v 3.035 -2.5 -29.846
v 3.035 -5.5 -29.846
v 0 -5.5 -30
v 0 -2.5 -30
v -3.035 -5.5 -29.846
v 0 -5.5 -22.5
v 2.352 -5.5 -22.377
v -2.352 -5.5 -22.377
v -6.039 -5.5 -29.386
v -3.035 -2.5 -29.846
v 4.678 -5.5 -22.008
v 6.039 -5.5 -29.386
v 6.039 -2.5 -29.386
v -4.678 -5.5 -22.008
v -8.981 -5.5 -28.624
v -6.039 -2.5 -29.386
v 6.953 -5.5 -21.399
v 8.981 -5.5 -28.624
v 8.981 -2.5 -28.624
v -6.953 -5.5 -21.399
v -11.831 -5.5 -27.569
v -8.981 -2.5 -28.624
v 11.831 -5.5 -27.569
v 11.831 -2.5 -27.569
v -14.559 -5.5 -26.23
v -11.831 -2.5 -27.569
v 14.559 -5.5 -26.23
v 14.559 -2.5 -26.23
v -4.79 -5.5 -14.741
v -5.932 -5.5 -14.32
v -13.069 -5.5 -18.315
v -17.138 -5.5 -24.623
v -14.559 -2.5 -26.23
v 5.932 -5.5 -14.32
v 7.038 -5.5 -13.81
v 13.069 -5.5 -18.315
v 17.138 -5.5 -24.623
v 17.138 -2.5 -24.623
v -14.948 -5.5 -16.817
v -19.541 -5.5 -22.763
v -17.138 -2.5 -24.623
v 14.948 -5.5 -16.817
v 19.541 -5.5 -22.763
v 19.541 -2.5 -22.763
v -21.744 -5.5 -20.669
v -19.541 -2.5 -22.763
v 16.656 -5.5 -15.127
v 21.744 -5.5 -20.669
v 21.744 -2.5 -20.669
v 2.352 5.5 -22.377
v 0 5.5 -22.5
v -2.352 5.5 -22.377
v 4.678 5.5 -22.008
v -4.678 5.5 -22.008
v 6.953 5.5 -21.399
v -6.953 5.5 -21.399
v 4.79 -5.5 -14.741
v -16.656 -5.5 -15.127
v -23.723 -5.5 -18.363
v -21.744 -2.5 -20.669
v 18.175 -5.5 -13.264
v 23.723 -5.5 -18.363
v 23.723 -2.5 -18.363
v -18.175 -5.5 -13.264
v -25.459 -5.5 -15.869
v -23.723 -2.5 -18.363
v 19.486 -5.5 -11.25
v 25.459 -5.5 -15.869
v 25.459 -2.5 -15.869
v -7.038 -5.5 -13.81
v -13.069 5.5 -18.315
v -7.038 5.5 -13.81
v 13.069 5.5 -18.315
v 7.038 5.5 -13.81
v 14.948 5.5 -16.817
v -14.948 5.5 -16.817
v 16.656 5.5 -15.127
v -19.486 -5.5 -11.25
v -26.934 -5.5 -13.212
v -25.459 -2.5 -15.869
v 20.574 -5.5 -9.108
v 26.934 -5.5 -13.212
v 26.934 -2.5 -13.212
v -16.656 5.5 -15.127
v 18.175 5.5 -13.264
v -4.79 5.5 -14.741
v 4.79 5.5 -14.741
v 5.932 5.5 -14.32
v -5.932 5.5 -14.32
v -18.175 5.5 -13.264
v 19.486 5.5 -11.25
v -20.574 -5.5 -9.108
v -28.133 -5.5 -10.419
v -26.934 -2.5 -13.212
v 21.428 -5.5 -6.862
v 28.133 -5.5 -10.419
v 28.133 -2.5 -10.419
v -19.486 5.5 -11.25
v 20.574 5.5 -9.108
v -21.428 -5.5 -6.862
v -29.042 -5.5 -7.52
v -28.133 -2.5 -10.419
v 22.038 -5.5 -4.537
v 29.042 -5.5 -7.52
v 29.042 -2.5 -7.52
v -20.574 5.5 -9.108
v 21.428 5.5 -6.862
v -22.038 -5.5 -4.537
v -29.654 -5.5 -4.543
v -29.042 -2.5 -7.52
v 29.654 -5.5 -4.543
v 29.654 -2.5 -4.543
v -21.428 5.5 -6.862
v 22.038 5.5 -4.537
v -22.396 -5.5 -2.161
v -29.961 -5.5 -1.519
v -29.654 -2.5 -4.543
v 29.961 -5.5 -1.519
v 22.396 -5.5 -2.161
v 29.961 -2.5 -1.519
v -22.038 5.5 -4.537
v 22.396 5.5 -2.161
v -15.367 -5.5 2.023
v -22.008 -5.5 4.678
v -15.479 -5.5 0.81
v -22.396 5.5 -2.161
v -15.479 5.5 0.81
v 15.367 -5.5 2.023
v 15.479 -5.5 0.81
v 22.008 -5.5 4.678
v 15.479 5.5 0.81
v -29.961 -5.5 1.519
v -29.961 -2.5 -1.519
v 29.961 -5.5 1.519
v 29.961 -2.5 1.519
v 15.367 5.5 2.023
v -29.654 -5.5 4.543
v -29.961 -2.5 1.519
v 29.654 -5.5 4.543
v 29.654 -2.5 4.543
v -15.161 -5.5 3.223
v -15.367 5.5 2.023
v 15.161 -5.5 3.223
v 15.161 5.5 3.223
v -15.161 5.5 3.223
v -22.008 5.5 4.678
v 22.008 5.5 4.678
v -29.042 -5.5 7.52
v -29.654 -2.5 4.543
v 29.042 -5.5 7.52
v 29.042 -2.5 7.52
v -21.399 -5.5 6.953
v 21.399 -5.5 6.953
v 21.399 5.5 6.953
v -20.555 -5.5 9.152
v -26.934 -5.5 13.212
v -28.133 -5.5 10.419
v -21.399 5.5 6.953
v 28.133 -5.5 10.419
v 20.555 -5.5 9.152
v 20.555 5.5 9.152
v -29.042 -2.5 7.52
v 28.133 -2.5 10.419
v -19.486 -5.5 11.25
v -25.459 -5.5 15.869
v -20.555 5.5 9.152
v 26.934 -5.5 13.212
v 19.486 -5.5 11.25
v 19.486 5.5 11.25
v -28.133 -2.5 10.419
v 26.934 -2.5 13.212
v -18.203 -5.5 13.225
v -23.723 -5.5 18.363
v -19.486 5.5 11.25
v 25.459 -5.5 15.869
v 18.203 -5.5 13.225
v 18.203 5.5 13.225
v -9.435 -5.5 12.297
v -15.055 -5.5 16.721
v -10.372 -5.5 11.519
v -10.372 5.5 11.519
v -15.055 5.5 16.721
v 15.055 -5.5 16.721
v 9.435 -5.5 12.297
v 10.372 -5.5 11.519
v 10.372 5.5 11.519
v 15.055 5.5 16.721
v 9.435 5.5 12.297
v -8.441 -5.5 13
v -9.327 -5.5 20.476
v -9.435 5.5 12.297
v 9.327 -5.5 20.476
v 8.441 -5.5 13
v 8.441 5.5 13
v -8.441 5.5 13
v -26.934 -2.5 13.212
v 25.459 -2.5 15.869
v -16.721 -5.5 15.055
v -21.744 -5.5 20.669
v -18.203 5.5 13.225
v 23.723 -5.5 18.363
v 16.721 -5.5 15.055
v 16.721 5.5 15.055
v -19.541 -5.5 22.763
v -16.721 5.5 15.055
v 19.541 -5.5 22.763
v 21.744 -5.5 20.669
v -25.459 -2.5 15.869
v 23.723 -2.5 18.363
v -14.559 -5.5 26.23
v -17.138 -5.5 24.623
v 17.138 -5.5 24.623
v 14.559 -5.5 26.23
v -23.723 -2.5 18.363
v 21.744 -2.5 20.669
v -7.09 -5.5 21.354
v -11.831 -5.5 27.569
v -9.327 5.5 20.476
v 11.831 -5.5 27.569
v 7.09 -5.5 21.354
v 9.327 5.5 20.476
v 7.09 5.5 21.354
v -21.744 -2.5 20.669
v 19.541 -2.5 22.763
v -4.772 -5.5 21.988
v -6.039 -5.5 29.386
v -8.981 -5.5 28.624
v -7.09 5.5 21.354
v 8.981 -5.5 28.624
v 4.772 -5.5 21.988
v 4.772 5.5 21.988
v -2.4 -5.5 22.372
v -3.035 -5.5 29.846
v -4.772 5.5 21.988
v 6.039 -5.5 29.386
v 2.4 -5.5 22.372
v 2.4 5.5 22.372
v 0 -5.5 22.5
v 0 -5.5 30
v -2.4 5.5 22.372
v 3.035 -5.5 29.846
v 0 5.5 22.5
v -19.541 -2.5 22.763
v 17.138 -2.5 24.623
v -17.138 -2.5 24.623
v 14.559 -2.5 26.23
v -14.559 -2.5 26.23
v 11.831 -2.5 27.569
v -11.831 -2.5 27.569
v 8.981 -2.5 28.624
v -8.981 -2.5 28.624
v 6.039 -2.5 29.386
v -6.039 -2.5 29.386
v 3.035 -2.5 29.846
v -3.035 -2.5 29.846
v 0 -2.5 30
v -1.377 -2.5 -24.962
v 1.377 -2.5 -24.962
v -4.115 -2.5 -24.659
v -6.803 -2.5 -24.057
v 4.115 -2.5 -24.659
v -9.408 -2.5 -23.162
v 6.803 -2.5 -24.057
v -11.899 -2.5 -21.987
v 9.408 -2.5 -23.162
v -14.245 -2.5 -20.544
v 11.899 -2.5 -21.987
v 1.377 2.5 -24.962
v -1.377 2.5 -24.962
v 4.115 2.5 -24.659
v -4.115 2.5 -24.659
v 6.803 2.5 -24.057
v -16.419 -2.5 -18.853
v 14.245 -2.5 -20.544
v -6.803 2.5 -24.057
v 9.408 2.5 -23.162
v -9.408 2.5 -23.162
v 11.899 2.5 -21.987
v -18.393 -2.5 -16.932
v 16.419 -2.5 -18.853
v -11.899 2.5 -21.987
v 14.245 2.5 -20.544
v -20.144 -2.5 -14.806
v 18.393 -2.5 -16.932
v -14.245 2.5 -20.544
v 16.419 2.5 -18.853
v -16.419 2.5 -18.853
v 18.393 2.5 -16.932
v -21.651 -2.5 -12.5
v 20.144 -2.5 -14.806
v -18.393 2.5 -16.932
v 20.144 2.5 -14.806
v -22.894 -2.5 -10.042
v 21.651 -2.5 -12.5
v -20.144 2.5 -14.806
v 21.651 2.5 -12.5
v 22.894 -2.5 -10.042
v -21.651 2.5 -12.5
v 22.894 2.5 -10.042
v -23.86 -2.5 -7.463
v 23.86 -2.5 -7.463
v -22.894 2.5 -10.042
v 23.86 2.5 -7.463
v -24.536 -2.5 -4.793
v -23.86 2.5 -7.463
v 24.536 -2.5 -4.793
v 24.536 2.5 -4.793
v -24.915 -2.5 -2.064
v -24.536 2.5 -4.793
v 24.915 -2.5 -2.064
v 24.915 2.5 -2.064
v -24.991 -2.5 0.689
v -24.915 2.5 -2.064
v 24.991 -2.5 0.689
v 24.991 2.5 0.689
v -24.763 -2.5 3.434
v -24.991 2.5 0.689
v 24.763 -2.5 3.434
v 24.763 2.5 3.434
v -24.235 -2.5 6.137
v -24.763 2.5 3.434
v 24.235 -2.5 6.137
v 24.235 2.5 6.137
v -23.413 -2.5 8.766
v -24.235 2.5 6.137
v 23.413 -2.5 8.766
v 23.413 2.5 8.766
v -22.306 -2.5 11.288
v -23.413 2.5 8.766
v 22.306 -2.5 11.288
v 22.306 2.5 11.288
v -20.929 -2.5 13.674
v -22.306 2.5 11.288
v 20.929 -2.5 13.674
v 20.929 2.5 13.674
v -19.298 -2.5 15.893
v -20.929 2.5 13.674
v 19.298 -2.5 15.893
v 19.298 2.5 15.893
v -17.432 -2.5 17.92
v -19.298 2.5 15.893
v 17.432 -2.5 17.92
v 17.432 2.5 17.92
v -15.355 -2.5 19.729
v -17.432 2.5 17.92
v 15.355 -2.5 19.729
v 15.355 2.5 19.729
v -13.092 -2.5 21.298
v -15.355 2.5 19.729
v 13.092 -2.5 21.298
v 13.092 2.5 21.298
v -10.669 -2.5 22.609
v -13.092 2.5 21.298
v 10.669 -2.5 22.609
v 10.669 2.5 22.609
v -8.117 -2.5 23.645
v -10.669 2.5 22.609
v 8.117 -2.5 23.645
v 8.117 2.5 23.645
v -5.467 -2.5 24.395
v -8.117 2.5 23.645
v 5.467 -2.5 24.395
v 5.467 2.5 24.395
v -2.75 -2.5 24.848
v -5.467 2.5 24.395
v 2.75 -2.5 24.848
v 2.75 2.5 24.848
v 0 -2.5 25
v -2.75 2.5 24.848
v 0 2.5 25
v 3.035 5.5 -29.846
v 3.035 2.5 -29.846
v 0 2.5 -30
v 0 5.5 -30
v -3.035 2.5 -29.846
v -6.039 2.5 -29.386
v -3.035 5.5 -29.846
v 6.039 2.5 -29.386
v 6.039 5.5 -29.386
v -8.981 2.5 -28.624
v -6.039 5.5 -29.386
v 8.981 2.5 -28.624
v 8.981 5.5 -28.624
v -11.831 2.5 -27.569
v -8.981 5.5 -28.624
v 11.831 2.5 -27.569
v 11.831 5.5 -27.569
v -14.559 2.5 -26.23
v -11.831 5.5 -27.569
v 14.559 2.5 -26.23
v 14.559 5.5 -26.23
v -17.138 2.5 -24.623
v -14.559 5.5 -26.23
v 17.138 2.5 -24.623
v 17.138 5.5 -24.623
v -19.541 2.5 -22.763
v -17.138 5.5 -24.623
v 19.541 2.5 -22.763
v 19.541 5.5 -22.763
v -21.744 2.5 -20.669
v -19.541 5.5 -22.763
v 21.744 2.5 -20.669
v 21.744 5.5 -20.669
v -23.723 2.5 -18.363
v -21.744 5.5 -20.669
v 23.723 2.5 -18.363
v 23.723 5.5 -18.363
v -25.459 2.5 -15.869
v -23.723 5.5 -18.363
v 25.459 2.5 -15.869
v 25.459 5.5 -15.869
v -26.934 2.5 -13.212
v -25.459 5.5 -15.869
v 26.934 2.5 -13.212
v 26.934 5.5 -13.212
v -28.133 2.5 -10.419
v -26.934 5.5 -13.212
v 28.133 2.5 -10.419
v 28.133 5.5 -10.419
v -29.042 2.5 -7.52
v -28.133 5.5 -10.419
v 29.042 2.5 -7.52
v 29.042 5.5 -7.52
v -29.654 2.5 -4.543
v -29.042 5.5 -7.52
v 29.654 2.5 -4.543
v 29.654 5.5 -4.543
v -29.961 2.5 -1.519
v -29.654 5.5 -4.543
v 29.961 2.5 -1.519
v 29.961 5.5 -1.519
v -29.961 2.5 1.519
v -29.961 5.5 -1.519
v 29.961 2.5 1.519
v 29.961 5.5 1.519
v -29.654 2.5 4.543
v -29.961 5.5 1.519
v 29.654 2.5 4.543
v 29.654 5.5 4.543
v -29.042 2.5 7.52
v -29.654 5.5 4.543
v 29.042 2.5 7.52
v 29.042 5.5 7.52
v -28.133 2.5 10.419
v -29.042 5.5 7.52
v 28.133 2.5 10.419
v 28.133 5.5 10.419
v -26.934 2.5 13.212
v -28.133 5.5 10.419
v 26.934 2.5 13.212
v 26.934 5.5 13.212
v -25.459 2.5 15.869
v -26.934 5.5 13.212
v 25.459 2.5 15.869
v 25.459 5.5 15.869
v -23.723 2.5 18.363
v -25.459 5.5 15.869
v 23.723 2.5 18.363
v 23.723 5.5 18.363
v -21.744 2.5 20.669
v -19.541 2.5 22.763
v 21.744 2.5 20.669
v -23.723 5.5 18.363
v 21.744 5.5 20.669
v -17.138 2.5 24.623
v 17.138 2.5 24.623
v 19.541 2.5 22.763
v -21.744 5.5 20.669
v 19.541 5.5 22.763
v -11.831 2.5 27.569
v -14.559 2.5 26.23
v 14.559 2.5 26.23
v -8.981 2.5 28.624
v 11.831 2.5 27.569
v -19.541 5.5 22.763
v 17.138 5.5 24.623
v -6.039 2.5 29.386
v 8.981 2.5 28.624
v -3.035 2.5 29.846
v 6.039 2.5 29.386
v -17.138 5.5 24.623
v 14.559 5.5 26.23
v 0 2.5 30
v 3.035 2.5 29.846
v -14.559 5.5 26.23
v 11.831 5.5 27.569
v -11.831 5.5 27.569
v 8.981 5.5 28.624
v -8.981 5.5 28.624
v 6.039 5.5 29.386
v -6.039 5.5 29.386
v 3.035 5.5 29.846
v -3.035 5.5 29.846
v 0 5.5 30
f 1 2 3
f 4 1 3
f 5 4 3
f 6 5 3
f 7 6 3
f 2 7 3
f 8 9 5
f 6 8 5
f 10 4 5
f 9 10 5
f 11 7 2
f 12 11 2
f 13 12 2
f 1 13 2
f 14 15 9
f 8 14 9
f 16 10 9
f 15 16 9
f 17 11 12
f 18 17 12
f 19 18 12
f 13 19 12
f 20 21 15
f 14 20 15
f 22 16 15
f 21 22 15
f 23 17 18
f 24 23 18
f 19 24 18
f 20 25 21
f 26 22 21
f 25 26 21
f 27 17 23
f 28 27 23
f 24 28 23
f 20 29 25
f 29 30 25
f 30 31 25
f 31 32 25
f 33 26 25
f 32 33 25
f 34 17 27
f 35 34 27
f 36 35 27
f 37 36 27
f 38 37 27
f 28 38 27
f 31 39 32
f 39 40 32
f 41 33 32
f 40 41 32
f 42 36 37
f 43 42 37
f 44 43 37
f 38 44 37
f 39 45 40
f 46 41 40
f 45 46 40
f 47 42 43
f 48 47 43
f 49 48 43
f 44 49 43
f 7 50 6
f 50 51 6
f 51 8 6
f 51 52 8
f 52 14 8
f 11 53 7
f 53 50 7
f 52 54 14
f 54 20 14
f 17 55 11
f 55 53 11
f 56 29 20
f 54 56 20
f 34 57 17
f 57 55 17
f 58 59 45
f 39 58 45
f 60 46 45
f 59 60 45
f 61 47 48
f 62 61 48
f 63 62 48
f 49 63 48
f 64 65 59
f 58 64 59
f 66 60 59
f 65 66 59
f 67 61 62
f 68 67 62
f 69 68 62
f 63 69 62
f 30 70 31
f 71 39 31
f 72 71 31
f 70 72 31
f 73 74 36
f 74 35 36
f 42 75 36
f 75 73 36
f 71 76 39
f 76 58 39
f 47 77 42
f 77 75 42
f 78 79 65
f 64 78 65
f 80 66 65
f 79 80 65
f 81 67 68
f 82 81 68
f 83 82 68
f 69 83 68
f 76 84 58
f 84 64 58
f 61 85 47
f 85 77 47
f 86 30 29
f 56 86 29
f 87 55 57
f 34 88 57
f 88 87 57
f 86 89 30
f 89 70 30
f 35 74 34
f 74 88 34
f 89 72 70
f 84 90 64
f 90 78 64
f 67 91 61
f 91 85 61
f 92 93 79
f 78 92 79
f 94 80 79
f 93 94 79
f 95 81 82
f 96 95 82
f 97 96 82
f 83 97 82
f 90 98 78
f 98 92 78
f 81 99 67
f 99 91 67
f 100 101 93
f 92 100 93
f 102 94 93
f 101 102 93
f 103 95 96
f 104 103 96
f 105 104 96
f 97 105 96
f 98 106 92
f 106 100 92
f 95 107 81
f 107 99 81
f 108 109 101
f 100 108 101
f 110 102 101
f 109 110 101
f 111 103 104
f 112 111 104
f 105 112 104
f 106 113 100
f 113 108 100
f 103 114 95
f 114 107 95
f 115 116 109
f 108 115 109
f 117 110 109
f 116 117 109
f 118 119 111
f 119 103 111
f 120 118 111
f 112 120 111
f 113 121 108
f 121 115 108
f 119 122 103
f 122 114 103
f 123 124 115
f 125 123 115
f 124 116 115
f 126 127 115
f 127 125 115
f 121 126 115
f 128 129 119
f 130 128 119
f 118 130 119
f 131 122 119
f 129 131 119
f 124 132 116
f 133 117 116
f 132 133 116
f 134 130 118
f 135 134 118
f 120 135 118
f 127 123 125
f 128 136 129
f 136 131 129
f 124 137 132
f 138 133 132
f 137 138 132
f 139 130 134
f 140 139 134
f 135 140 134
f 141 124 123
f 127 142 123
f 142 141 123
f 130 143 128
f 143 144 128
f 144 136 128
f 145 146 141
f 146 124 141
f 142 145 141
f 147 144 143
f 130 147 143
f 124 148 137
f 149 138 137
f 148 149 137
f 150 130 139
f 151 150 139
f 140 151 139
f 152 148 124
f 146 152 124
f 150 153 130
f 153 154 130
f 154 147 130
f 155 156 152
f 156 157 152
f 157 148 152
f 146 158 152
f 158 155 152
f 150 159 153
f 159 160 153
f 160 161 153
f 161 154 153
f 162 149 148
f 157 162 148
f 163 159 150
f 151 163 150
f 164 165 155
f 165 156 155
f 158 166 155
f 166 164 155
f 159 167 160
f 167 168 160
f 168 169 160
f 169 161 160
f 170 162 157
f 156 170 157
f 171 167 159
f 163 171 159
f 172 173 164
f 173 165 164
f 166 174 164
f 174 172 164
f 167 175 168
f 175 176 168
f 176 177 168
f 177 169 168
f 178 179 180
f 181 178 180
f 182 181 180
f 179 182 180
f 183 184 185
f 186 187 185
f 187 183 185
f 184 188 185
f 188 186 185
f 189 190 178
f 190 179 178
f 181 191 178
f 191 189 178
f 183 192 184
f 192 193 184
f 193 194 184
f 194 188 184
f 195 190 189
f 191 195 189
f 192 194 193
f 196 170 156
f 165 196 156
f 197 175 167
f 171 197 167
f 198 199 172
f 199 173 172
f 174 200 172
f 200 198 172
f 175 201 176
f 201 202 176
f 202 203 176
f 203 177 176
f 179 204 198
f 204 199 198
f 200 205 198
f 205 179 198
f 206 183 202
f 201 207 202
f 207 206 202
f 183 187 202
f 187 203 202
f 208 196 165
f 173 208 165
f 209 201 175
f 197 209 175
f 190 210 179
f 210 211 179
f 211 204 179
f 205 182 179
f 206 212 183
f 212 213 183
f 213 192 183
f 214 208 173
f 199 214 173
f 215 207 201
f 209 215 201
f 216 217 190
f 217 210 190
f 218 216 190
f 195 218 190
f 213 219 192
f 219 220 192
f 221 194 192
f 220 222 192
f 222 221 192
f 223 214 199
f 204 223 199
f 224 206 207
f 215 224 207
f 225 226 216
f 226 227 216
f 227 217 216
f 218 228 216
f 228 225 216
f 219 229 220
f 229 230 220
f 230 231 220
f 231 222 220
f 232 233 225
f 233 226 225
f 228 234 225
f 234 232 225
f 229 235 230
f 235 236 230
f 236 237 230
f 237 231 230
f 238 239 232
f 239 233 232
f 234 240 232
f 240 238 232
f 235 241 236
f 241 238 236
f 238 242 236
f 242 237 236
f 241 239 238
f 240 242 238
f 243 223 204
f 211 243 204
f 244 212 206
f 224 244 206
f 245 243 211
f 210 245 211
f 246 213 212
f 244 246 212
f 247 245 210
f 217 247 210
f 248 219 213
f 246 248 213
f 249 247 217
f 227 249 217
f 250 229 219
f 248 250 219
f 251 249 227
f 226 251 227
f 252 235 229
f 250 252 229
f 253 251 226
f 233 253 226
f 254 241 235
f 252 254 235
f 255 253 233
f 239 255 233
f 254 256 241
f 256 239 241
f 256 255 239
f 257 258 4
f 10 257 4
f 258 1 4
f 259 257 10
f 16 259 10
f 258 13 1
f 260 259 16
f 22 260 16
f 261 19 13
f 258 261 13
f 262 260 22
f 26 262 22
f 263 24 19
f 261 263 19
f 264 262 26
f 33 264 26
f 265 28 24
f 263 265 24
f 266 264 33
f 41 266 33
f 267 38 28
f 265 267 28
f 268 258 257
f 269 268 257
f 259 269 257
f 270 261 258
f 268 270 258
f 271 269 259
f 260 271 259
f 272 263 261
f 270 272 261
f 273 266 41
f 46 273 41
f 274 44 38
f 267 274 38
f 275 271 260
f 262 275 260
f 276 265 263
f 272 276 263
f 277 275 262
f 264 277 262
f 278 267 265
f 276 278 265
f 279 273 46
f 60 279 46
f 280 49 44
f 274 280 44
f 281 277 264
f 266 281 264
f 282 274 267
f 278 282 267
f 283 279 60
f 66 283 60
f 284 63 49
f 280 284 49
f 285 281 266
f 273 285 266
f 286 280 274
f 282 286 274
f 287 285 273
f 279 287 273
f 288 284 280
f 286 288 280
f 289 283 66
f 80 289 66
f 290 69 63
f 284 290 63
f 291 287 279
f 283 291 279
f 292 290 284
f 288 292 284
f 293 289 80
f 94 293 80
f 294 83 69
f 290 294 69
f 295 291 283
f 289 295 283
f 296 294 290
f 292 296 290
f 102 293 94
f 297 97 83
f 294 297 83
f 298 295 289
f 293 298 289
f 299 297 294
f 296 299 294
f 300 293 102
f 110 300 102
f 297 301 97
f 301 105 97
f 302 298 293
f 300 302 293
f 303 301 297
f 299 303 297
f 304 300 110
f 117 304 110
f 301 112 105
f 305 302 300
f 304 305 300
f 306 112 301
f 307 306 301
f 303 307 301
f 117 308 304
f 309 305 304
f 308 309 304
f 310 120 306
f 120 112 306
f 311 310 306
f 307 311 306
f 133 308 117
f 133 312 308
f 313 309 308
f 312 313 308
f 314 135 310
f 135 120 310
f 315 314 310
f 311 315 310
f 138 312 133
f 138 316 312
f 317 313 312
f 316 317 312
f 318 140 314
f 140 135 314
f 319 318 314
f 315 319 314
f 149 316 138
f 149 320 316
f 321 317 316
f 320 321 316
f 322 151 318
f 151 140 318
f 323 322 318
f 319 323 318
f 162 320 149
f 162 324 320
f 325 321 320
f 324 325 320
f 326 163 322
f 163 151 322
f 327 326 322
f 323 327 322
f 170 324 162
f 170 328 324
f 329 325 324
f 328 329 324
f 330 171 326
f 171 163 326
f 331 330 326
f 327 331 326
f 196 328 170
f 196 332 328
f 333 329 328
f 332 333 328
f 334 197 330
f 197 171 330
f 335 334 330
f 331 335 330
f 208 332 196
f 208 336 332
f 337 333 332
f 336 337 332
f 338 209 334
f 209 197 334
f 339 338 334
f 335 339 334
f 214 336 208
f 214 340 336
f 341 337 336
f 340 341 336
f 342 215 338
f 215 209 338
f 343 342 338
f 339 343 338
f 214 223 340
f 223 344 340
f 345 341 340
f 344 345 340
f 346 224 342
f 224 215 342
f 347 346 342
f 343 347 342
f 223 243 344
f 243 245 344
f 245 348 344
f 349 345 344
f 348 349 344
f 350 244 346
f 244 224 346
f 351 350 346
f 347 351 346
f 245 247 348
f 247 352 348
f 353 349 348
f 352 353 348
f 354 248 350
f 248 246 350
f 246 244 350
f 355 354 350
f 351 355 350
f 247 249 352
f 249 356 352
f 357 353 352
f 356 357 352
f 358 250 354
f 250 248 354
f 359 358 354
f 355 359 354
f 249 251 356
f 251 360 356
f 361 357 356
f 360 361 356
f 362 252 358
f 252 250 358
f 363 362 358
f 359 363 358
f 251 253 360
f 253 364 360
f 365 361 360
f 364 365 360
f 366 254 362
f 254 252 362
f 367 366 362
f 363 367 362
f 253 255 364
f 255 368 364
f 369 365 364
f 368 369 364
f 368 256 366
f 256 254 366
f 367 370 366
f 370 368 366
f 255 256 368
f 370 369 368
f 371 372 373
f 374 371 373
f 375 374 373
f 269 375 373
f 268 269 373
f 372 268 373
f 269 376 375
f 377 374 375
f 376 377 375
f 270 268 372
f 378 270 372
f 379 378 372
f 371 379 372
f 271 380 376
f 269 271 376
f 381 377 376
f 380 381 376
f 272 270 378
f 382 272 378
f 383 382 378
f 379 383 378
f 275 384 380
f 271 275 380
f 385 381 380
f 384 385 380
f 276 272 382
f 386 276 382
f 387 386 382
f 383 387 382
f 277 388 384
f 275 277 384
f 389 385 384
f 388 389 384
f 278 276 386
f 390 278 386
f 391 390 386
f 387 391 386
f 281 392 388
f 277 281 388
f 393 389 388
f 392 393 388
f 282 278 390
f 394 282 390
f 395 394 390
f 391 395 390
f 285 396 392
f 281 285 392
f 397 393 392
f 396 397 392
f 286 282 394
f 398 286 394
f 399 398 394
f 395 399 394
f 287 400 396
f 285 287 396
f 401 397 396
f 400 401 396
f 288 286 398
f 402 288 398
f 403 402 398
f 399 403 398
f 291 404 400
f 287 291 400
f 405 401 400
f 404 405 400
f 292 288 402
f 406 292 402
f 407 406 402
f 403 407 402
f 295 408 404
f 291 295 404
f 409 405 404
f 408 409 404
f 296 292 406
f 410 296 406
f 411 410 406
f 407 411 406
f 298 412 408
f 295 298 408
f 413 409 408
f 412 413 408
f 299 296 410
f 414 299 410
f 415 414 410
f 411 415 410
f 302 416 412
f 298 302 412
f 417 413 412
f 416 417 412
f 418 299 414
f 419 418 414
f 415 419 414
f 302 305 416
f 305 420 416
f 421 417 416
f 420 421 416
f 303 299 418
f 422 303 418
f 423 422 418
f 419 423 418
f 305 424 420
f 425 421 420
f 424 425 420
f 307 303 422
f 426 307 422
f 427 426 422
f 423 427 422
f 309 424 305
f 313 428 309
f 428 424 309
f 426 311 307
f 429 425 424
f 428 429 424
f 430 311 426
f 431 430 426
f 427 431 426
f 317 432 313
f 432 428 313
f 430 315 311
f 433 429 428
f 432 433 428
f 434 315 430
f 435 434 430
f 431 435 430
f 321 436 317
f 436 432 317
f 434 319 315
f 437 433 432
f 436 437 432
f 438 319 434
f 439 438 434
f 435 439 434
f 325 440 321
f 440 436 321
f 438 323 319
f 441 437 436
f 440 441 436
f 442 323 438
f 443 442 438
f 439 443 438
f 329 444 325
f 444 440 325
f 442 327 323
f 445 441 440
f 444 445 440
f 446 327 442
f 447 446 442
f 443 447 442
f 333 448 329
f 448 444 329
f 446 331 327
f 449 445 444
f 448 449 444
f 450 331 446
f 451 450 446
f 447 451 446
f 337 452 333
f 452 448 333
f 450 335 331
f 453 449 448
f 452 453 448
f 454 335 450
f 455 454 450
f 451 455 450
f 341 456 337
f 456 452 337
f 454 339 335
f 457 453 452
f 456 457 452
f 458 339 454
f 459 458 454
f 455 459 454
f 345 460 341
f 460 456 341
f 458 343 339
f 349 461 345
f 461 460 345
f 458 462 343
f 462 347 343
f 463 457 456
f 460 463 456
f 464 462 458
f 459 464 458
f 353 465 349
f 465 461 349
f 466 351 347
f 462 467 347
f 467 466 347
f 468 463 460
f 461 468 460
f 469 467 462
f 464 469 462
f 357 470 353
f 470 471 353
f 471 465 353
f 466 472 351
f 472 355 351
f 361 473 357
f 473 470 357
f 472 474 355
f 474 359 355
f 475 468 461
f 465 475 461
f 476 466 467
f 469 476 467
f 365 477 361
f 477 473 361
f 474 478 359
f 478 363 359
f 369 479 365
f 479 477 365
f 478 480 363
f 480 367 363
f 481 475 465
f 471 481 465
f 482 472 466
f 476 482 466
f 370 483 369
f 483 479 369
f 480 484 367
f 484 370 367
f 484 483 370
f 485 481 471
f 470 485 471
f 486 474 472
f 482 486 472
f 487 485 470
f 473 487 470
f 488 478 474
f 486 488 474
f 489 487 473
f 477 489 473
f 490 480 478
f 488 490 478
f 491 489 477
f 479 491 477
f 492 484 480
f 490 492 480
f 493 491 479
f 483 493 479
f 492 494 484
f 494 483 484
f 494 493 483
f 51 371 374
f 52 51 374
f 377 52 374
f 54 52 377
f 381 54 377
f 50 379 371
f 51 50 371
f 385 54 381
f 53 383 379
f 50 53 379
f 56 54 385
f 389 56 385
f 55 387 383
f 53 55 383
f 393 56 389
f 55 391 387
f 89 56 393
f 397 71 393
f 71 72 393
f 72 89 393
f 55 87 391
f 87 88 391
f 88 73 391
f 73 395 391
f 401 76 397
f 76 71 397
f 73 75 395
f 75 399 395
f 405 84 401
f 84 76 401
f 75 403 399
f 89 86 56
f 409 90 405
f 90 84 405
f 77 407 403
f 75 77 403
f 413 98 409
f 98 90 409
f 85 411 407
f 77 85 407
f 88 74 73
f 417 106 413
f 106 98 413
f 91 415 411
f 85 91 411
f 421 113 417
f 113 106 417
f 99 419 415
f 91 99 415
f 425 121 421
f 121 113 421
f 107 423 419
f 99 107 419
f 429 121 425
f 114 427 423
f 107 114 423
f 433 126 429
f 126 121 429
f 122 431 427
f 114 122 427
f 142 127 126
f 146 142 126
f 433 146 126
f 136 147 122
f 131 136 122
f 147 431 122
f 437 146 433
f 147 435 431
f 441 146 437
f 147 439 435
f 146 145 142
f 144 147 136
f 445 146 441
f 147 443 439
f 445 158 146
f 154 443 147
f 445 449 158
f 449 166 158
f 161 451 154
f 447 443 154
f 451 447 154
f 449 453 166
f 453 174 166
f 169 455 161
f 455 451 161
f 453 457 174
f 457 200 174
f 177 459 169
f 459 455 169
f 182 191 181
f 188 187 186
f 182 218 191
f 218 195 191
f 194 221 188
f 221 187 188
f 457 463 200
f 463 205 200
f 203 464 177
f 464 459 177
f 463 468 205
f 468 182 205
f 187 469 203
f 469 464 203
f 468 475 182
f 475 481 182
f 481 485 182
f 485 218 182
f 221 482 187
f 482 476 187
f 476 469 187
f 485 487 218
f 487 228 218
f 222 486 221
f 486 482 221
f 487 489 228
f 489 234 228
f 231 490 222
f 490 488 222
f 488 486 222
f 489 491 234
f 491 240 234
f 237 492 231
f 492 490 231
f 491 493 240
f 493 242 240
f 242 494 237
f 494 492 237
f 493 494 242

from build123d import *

# Parameters (mm, degrees)
CUT_EXTRUDE1_REACH = 13


with BuildPart() as part:
    # Sketch2 → Revolve1 (revolve)
    with BuildSketch(Plane.XY):
        Polygon((-25, 2.5), (-25, -2.5), (-30, -2.5), (-30, -5.5), (0, -5.5), (0, 5.5), (-30, 5.5), (-30, 2.5), align=None)
    revolve(axis=Axis((0, 19.987411147, 0), (0, -1, 0)))

    # Sketch3 → Cut-Extrude1 (cut, up to next)
    with BuildSketch(Plane(origin=(0, 5.5, 0), x_dir=(1, 0, 0), z_dir=(0, 1, 0)), mode=Mode.PRIVATE) as cut_extrude1_sk1:
        with BuildLine():
            ThreePointArc((15.055438643, -16.720758573), (19.485571585, -11.25), (22.008321017, -4.678013043))
            Line((22.008321017, -4.678013043), (15.161287811, -3.222631208))
            ThreePointArc((15.161287811, -3.222631208), (15.367467985, -2.022604196), (15.478816003, -0.810095759))
            Line((15.478816003, -0.810095759), (22.395997522, 2.160855156))
            ThreePointArc((22.395997522, 2.160855156), (19.485571585, 11.25), (13.06935422, 18.315075219))
            Line((13.06935422, 18.315075219), (7.037844495, 13.810095759))
            ThreePointArc((7.037844495, 13.810095759), (5.932107377, 14.319919765), (4.789763413, 14.741376003))
            Line((4.789763413, 14.741376003), (6.952882373, 21.398771617))
            ThreePointArc((6.952882373, 21.398771617), (0, 22.5), (-6.952882373, 21.398771617))
            Line((-6.952882373, 21.398771617), (-4.789763413, 14.741376003))
            ThreePointArc((-4.789763413, 14.741376003), (-5.932107377, 14.319919765), (-7.037844495, 13.810095759))
            Line((-7.037844495, 13.810095759), (-13.06935422, 18.315075219))
            ThreePointArc((-13.06935422, 18.315075219), (-19.485571585, 11.25), (-22.395997522, 2.160855156))
            Line((-22.395997522, 2.160855156), (-15.478816003, -0.810095759))
            ThreePointArc((-15.478816003, -0.810095759), (-15.367467985, -2.022604196), (-15.161287811, -3.222631208))
            Line((-15.161287811, -3.222631208), (-22.008321017, -4.678013043))
            ThreePointArc((-22.008321017, -4.678013043), (-19.485571585, -11.25), (-15.055438643, -16.720758573))
            Line((-15.055438643, -16.720758573), (-10.371524399, -11.518744795))
            ThreePointArc((-10.371524399, -11.518744795), (-9.435360608, -12.297315569), (-8.440971508, -13))
            Line((-8.440971508, -13), (-9.326643302, -20.475930375))
            ThreePointArc((-9.326643302, -20.475930375), (0, -22.5), (9.326643302, -20.475930375))
            Line((9.326643302, -20.475930375), (8.440971508, -13))
            ThreePointArc((8.440971508, -13), (9.435360608, -12.297315569), (10.371524399, -11.518744795))
            Line((10.371524399, -11.518744795), (15.055438643, -16.720758573))
        make_face()
    cut_extrude1_tool1 = extrude(cut_extrude1_sk1.sketch, amount=-CUT_EXTRUDE1_REACH, mode=Mode.PRIVATE) & part.part
    add(cut_extrude1_tool1.solids().sort_by_distance((0, 5.5, 0))[0], mode=Mode.SUBTRACT)


solid = part.part
